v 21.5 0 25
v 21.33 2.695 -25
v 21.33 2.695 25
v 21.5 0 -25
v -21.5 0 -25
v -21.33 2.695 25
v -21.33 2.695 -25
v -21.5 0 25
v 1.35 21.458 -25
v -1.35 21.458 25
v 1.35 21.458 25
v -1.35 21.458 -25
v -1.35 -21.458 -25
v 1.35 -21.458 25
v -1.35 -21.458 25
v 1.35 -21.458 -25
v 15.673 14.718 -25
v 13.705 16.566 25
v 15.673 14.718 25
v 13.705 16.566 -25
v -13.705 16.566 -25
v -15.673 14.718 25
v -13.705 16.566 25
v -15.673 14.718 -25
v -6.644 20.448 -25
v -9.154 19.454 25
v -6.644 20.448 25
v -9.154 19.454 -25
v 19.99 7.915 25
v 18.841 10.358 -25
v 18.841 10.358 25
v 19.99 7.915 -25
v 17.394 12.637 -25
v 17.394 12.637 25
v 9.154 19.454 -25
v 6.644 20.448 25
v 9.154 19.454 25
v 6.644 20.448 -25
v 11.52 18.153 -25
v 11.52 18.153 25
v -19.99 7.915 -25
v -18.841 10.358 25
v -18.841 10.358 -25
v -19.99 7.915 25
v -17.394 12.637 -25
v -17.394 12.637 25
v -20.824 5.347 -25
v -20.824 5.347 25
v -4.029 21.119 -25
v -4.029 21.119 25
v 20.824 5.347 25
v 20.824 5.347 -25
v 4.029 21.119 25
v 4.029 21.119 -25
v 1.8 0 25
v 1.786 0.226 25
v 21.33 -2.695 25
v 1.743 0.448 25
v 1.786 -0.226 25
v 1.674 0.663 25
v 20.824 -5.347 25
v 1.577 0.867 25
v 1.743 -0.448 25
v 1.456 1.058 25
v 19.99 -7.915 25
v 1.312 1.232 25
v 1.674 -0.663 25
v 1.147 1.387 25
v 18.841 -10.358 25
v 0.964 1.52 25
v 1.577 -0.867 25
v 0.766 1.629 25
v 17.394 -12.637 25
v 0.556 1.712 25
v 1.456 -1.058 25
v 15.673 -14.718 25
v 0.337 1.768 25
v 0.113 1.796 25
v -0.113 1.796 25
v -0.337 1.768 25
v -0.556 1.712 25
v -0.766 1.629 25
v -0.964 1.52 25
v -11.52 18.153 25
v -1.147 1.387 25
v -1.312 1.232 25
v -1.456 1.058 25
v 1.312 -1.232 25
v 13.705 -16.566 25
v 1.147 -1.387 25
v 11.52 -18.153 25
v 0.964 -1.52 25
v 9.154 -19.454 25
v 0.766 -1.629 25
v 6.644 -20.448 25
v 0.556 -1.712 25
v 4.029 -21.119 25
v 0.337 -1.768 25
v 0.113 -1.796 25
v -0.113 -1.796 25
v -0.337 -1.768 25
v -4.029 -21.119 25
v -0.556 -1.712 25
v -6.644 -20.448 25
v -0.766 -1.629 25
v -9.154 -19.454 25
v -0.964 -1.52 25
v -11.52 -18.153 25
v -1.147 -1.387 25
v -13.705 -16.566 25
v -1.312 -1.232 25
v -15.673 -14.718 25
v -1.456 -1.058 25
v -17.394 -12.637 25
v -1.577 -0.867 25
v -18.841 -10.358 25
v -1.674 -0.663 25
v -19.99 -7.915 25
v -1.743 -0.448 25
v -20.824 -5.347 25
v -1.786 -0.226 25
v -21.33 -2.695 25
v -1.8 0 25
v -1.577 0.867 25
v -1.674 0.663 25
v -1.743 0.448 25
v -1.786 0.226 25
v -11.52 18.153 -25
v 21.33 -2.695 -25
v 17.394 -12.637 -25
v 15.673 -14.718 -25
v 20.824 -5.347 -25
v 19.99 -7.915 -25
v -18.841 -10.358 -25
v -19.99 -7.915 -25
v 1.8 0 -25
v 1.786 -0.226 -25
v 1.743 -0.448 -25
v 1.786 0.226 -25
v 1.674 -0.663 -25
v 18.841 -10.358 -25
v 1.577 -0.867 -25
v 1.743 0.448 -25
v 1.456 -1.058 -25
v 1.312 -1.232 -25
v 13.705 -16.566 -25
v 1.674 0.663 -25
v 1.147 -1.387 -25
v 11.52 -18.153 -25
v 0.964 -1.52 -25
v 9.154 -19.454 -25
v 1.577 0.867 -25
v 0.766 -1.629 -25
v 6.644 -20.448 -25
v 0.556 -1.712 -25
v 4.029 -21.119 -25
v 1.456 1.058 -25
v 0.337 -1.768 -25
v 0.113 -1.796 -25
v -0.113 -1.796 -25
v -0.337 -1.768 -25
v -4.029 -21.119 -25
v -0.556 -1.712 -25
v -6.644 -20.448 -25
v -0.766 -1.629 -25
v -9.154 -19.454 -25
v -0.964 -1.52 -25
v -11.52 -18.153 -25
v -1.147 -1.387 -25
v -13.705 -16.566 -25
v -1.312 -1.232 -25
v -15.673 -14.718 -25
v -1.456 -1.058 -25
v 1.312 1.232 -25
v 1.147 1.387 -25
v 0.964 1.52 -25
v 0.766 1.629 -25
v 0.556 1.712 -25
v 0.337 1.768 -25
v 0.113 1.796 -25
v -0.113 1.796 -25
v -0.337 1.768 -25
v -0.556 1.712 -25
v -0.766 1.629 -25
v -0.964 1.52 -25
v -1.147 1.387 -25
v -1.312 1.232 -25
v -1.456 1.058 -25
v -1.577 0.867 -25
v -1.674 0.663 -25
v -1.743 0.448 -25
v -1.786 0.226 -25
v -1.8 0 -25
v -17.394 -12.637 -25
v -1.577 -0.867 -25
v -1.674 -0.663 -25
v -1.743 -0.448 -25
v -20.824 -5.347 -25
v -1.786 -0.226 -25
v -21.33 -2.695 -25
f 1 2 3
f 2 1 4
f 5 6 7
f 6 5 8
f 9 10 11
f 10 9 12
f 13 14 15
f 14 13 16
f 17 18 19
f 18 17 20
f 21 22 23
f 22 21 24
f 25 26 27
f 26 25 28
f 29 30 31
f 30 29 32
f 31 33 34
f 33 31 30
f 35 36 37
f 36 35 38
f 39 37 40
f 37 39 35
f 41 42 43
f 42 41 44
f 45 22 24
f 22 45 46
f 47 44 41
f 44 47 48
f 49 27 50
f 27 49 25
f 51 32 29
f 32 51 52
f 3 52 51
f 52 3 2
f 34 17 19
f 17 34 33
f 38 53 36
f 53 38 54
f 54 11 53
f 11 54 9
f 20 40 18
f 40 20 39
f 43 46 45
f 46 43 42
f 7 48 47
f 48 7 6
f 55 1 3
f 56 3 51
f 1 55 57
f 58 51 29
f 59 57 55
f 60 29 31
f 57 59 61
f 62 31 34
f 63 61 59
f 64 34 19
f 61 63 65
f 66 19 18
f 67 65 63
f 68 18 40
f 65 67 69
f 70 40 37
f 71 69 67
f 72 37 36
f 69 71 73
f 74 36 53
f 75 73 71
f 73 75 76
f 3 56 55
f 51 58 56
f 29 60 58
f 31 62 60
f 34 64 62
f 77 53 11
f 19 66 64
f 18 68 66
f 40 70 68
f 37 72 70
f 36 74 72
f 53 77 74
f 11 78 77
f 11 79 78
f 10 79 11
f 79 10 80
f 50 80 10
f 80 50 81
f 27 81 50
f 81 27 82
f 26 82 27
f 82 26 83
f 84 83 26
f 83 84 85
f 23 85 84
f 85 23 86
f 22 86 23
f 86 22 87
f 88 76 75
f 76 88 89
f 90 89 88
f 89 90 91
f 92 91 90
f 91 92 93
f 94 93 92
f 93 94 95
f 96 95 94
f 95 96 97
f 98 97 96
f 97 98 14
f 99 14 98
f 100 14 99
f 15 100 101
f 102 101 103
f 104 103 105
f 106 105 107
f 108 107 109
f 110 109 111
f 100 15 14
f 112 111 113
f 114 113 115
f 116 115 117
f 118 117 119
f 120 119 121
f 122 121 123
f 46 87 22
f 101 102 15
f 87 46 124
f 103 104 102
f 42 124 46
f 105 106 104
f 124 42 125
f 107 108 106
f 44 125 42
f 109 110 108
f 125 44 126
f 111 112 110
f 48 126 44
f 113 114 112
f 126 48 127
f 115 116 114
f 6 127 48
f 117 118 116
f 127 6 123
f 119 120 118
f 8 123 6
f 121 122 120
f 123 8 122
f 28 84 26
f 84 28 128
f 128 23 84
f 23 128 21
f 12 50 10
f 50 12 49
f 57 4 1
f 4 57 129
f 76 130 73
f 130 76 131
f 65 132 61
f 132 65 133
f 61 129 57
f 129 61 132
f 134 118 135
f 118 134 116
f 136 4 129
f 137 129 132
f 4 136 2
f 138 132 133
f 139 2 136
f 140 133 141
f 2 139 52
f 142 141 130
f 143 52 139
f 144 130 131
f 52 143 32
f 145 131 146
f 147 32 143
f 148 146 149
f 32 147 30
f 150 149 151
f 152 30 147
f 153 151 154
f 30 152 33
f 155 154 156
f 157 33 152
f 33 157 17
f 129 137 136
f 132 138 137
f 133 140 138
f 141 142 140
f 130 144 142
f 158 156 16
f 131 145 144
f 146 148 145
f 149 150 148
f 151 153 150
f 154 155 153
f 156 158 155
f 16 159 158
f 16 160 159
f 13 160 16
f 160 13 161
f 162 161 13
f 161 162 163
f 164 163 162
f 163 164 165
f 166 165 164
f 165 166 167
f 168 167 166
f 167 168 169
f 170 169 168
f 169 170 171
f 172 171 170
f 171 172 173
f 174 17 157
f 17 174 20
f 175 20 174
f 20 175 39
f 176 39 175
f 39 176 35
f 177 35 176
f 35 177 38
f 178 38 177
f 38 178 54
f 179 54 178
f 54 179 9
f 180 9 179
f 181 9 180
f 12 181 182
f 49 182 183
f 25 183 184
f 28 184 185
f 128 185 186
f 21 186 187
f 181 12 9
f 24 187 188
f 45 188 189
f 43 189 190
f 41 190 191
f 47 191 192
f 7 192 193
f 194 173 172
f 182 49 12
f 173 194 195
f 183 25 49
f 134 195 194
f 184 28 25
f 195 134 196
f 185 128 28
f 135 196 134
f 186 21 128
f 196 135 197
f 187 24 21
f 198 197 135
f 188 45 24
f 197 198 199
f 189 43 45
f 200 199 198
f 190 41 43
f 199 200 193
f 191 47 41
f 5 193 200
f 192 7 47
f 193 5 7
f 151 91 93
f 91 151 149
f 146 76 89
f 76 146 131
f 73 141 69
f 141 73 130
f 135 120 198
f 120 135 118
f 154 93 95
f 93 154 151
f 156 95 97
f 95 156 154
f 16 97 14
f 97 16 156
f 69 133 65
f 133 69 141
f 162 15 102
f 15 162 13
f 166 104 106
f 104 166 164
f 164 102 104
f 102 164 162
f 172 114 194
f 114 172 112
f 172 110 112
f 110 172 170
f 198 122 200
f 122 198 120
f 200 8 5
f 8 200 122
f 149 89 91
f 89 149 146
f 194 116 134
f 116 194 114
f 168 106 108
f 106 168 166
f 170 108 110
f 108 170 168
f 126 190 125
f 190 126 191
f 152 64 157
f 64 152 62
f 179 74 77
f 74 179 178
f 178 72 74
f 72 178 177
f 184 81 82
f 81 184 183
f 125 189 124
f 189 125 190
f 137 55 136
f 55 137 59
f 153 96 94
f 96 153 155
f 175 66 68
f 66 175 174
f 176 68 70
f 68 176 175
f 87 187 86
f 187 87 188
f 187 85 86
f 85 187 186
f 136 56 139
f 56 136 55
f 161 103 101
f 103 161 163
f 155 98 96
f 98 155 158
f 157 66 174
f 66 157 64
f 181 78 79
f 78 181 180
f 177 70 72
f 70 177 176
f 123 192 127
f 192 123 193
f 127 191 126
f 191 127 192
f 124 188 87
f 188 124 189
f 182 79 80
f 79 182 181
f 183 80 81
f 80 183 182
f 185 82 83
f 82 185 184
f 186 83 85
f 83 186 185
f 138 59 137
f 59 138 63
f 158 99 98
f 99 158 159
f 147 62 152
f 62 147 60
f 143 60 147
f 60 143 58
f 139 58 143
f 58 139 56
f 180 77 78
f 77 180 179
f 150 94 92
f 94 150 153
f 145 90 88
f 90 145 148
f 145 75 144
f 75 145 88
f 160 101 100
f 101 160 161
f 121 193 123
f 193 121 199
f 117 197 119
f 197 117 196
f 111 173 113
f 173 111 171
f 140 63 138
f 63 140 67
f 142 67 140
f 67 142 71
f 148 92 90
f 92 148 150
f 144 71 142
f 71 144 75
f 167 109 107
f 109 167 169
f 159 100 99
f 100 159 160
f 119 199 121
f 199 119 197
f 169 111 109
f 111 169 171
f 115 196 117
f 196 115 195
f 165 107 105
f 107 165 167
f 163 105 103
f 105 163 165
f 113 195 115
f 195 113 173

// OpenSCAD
$fn = 50;


difference() {
	union() {
		translate(v = [0, 0, -25.0000000000]) {
			cylinder(h = 50, r = 21.5000000000);
		}
	}
	union() {
		translate(v = [0, 0, -100.0000000000]) {
			cylinder(h = 200, r = 1.8000000000);
		}
	}
}
